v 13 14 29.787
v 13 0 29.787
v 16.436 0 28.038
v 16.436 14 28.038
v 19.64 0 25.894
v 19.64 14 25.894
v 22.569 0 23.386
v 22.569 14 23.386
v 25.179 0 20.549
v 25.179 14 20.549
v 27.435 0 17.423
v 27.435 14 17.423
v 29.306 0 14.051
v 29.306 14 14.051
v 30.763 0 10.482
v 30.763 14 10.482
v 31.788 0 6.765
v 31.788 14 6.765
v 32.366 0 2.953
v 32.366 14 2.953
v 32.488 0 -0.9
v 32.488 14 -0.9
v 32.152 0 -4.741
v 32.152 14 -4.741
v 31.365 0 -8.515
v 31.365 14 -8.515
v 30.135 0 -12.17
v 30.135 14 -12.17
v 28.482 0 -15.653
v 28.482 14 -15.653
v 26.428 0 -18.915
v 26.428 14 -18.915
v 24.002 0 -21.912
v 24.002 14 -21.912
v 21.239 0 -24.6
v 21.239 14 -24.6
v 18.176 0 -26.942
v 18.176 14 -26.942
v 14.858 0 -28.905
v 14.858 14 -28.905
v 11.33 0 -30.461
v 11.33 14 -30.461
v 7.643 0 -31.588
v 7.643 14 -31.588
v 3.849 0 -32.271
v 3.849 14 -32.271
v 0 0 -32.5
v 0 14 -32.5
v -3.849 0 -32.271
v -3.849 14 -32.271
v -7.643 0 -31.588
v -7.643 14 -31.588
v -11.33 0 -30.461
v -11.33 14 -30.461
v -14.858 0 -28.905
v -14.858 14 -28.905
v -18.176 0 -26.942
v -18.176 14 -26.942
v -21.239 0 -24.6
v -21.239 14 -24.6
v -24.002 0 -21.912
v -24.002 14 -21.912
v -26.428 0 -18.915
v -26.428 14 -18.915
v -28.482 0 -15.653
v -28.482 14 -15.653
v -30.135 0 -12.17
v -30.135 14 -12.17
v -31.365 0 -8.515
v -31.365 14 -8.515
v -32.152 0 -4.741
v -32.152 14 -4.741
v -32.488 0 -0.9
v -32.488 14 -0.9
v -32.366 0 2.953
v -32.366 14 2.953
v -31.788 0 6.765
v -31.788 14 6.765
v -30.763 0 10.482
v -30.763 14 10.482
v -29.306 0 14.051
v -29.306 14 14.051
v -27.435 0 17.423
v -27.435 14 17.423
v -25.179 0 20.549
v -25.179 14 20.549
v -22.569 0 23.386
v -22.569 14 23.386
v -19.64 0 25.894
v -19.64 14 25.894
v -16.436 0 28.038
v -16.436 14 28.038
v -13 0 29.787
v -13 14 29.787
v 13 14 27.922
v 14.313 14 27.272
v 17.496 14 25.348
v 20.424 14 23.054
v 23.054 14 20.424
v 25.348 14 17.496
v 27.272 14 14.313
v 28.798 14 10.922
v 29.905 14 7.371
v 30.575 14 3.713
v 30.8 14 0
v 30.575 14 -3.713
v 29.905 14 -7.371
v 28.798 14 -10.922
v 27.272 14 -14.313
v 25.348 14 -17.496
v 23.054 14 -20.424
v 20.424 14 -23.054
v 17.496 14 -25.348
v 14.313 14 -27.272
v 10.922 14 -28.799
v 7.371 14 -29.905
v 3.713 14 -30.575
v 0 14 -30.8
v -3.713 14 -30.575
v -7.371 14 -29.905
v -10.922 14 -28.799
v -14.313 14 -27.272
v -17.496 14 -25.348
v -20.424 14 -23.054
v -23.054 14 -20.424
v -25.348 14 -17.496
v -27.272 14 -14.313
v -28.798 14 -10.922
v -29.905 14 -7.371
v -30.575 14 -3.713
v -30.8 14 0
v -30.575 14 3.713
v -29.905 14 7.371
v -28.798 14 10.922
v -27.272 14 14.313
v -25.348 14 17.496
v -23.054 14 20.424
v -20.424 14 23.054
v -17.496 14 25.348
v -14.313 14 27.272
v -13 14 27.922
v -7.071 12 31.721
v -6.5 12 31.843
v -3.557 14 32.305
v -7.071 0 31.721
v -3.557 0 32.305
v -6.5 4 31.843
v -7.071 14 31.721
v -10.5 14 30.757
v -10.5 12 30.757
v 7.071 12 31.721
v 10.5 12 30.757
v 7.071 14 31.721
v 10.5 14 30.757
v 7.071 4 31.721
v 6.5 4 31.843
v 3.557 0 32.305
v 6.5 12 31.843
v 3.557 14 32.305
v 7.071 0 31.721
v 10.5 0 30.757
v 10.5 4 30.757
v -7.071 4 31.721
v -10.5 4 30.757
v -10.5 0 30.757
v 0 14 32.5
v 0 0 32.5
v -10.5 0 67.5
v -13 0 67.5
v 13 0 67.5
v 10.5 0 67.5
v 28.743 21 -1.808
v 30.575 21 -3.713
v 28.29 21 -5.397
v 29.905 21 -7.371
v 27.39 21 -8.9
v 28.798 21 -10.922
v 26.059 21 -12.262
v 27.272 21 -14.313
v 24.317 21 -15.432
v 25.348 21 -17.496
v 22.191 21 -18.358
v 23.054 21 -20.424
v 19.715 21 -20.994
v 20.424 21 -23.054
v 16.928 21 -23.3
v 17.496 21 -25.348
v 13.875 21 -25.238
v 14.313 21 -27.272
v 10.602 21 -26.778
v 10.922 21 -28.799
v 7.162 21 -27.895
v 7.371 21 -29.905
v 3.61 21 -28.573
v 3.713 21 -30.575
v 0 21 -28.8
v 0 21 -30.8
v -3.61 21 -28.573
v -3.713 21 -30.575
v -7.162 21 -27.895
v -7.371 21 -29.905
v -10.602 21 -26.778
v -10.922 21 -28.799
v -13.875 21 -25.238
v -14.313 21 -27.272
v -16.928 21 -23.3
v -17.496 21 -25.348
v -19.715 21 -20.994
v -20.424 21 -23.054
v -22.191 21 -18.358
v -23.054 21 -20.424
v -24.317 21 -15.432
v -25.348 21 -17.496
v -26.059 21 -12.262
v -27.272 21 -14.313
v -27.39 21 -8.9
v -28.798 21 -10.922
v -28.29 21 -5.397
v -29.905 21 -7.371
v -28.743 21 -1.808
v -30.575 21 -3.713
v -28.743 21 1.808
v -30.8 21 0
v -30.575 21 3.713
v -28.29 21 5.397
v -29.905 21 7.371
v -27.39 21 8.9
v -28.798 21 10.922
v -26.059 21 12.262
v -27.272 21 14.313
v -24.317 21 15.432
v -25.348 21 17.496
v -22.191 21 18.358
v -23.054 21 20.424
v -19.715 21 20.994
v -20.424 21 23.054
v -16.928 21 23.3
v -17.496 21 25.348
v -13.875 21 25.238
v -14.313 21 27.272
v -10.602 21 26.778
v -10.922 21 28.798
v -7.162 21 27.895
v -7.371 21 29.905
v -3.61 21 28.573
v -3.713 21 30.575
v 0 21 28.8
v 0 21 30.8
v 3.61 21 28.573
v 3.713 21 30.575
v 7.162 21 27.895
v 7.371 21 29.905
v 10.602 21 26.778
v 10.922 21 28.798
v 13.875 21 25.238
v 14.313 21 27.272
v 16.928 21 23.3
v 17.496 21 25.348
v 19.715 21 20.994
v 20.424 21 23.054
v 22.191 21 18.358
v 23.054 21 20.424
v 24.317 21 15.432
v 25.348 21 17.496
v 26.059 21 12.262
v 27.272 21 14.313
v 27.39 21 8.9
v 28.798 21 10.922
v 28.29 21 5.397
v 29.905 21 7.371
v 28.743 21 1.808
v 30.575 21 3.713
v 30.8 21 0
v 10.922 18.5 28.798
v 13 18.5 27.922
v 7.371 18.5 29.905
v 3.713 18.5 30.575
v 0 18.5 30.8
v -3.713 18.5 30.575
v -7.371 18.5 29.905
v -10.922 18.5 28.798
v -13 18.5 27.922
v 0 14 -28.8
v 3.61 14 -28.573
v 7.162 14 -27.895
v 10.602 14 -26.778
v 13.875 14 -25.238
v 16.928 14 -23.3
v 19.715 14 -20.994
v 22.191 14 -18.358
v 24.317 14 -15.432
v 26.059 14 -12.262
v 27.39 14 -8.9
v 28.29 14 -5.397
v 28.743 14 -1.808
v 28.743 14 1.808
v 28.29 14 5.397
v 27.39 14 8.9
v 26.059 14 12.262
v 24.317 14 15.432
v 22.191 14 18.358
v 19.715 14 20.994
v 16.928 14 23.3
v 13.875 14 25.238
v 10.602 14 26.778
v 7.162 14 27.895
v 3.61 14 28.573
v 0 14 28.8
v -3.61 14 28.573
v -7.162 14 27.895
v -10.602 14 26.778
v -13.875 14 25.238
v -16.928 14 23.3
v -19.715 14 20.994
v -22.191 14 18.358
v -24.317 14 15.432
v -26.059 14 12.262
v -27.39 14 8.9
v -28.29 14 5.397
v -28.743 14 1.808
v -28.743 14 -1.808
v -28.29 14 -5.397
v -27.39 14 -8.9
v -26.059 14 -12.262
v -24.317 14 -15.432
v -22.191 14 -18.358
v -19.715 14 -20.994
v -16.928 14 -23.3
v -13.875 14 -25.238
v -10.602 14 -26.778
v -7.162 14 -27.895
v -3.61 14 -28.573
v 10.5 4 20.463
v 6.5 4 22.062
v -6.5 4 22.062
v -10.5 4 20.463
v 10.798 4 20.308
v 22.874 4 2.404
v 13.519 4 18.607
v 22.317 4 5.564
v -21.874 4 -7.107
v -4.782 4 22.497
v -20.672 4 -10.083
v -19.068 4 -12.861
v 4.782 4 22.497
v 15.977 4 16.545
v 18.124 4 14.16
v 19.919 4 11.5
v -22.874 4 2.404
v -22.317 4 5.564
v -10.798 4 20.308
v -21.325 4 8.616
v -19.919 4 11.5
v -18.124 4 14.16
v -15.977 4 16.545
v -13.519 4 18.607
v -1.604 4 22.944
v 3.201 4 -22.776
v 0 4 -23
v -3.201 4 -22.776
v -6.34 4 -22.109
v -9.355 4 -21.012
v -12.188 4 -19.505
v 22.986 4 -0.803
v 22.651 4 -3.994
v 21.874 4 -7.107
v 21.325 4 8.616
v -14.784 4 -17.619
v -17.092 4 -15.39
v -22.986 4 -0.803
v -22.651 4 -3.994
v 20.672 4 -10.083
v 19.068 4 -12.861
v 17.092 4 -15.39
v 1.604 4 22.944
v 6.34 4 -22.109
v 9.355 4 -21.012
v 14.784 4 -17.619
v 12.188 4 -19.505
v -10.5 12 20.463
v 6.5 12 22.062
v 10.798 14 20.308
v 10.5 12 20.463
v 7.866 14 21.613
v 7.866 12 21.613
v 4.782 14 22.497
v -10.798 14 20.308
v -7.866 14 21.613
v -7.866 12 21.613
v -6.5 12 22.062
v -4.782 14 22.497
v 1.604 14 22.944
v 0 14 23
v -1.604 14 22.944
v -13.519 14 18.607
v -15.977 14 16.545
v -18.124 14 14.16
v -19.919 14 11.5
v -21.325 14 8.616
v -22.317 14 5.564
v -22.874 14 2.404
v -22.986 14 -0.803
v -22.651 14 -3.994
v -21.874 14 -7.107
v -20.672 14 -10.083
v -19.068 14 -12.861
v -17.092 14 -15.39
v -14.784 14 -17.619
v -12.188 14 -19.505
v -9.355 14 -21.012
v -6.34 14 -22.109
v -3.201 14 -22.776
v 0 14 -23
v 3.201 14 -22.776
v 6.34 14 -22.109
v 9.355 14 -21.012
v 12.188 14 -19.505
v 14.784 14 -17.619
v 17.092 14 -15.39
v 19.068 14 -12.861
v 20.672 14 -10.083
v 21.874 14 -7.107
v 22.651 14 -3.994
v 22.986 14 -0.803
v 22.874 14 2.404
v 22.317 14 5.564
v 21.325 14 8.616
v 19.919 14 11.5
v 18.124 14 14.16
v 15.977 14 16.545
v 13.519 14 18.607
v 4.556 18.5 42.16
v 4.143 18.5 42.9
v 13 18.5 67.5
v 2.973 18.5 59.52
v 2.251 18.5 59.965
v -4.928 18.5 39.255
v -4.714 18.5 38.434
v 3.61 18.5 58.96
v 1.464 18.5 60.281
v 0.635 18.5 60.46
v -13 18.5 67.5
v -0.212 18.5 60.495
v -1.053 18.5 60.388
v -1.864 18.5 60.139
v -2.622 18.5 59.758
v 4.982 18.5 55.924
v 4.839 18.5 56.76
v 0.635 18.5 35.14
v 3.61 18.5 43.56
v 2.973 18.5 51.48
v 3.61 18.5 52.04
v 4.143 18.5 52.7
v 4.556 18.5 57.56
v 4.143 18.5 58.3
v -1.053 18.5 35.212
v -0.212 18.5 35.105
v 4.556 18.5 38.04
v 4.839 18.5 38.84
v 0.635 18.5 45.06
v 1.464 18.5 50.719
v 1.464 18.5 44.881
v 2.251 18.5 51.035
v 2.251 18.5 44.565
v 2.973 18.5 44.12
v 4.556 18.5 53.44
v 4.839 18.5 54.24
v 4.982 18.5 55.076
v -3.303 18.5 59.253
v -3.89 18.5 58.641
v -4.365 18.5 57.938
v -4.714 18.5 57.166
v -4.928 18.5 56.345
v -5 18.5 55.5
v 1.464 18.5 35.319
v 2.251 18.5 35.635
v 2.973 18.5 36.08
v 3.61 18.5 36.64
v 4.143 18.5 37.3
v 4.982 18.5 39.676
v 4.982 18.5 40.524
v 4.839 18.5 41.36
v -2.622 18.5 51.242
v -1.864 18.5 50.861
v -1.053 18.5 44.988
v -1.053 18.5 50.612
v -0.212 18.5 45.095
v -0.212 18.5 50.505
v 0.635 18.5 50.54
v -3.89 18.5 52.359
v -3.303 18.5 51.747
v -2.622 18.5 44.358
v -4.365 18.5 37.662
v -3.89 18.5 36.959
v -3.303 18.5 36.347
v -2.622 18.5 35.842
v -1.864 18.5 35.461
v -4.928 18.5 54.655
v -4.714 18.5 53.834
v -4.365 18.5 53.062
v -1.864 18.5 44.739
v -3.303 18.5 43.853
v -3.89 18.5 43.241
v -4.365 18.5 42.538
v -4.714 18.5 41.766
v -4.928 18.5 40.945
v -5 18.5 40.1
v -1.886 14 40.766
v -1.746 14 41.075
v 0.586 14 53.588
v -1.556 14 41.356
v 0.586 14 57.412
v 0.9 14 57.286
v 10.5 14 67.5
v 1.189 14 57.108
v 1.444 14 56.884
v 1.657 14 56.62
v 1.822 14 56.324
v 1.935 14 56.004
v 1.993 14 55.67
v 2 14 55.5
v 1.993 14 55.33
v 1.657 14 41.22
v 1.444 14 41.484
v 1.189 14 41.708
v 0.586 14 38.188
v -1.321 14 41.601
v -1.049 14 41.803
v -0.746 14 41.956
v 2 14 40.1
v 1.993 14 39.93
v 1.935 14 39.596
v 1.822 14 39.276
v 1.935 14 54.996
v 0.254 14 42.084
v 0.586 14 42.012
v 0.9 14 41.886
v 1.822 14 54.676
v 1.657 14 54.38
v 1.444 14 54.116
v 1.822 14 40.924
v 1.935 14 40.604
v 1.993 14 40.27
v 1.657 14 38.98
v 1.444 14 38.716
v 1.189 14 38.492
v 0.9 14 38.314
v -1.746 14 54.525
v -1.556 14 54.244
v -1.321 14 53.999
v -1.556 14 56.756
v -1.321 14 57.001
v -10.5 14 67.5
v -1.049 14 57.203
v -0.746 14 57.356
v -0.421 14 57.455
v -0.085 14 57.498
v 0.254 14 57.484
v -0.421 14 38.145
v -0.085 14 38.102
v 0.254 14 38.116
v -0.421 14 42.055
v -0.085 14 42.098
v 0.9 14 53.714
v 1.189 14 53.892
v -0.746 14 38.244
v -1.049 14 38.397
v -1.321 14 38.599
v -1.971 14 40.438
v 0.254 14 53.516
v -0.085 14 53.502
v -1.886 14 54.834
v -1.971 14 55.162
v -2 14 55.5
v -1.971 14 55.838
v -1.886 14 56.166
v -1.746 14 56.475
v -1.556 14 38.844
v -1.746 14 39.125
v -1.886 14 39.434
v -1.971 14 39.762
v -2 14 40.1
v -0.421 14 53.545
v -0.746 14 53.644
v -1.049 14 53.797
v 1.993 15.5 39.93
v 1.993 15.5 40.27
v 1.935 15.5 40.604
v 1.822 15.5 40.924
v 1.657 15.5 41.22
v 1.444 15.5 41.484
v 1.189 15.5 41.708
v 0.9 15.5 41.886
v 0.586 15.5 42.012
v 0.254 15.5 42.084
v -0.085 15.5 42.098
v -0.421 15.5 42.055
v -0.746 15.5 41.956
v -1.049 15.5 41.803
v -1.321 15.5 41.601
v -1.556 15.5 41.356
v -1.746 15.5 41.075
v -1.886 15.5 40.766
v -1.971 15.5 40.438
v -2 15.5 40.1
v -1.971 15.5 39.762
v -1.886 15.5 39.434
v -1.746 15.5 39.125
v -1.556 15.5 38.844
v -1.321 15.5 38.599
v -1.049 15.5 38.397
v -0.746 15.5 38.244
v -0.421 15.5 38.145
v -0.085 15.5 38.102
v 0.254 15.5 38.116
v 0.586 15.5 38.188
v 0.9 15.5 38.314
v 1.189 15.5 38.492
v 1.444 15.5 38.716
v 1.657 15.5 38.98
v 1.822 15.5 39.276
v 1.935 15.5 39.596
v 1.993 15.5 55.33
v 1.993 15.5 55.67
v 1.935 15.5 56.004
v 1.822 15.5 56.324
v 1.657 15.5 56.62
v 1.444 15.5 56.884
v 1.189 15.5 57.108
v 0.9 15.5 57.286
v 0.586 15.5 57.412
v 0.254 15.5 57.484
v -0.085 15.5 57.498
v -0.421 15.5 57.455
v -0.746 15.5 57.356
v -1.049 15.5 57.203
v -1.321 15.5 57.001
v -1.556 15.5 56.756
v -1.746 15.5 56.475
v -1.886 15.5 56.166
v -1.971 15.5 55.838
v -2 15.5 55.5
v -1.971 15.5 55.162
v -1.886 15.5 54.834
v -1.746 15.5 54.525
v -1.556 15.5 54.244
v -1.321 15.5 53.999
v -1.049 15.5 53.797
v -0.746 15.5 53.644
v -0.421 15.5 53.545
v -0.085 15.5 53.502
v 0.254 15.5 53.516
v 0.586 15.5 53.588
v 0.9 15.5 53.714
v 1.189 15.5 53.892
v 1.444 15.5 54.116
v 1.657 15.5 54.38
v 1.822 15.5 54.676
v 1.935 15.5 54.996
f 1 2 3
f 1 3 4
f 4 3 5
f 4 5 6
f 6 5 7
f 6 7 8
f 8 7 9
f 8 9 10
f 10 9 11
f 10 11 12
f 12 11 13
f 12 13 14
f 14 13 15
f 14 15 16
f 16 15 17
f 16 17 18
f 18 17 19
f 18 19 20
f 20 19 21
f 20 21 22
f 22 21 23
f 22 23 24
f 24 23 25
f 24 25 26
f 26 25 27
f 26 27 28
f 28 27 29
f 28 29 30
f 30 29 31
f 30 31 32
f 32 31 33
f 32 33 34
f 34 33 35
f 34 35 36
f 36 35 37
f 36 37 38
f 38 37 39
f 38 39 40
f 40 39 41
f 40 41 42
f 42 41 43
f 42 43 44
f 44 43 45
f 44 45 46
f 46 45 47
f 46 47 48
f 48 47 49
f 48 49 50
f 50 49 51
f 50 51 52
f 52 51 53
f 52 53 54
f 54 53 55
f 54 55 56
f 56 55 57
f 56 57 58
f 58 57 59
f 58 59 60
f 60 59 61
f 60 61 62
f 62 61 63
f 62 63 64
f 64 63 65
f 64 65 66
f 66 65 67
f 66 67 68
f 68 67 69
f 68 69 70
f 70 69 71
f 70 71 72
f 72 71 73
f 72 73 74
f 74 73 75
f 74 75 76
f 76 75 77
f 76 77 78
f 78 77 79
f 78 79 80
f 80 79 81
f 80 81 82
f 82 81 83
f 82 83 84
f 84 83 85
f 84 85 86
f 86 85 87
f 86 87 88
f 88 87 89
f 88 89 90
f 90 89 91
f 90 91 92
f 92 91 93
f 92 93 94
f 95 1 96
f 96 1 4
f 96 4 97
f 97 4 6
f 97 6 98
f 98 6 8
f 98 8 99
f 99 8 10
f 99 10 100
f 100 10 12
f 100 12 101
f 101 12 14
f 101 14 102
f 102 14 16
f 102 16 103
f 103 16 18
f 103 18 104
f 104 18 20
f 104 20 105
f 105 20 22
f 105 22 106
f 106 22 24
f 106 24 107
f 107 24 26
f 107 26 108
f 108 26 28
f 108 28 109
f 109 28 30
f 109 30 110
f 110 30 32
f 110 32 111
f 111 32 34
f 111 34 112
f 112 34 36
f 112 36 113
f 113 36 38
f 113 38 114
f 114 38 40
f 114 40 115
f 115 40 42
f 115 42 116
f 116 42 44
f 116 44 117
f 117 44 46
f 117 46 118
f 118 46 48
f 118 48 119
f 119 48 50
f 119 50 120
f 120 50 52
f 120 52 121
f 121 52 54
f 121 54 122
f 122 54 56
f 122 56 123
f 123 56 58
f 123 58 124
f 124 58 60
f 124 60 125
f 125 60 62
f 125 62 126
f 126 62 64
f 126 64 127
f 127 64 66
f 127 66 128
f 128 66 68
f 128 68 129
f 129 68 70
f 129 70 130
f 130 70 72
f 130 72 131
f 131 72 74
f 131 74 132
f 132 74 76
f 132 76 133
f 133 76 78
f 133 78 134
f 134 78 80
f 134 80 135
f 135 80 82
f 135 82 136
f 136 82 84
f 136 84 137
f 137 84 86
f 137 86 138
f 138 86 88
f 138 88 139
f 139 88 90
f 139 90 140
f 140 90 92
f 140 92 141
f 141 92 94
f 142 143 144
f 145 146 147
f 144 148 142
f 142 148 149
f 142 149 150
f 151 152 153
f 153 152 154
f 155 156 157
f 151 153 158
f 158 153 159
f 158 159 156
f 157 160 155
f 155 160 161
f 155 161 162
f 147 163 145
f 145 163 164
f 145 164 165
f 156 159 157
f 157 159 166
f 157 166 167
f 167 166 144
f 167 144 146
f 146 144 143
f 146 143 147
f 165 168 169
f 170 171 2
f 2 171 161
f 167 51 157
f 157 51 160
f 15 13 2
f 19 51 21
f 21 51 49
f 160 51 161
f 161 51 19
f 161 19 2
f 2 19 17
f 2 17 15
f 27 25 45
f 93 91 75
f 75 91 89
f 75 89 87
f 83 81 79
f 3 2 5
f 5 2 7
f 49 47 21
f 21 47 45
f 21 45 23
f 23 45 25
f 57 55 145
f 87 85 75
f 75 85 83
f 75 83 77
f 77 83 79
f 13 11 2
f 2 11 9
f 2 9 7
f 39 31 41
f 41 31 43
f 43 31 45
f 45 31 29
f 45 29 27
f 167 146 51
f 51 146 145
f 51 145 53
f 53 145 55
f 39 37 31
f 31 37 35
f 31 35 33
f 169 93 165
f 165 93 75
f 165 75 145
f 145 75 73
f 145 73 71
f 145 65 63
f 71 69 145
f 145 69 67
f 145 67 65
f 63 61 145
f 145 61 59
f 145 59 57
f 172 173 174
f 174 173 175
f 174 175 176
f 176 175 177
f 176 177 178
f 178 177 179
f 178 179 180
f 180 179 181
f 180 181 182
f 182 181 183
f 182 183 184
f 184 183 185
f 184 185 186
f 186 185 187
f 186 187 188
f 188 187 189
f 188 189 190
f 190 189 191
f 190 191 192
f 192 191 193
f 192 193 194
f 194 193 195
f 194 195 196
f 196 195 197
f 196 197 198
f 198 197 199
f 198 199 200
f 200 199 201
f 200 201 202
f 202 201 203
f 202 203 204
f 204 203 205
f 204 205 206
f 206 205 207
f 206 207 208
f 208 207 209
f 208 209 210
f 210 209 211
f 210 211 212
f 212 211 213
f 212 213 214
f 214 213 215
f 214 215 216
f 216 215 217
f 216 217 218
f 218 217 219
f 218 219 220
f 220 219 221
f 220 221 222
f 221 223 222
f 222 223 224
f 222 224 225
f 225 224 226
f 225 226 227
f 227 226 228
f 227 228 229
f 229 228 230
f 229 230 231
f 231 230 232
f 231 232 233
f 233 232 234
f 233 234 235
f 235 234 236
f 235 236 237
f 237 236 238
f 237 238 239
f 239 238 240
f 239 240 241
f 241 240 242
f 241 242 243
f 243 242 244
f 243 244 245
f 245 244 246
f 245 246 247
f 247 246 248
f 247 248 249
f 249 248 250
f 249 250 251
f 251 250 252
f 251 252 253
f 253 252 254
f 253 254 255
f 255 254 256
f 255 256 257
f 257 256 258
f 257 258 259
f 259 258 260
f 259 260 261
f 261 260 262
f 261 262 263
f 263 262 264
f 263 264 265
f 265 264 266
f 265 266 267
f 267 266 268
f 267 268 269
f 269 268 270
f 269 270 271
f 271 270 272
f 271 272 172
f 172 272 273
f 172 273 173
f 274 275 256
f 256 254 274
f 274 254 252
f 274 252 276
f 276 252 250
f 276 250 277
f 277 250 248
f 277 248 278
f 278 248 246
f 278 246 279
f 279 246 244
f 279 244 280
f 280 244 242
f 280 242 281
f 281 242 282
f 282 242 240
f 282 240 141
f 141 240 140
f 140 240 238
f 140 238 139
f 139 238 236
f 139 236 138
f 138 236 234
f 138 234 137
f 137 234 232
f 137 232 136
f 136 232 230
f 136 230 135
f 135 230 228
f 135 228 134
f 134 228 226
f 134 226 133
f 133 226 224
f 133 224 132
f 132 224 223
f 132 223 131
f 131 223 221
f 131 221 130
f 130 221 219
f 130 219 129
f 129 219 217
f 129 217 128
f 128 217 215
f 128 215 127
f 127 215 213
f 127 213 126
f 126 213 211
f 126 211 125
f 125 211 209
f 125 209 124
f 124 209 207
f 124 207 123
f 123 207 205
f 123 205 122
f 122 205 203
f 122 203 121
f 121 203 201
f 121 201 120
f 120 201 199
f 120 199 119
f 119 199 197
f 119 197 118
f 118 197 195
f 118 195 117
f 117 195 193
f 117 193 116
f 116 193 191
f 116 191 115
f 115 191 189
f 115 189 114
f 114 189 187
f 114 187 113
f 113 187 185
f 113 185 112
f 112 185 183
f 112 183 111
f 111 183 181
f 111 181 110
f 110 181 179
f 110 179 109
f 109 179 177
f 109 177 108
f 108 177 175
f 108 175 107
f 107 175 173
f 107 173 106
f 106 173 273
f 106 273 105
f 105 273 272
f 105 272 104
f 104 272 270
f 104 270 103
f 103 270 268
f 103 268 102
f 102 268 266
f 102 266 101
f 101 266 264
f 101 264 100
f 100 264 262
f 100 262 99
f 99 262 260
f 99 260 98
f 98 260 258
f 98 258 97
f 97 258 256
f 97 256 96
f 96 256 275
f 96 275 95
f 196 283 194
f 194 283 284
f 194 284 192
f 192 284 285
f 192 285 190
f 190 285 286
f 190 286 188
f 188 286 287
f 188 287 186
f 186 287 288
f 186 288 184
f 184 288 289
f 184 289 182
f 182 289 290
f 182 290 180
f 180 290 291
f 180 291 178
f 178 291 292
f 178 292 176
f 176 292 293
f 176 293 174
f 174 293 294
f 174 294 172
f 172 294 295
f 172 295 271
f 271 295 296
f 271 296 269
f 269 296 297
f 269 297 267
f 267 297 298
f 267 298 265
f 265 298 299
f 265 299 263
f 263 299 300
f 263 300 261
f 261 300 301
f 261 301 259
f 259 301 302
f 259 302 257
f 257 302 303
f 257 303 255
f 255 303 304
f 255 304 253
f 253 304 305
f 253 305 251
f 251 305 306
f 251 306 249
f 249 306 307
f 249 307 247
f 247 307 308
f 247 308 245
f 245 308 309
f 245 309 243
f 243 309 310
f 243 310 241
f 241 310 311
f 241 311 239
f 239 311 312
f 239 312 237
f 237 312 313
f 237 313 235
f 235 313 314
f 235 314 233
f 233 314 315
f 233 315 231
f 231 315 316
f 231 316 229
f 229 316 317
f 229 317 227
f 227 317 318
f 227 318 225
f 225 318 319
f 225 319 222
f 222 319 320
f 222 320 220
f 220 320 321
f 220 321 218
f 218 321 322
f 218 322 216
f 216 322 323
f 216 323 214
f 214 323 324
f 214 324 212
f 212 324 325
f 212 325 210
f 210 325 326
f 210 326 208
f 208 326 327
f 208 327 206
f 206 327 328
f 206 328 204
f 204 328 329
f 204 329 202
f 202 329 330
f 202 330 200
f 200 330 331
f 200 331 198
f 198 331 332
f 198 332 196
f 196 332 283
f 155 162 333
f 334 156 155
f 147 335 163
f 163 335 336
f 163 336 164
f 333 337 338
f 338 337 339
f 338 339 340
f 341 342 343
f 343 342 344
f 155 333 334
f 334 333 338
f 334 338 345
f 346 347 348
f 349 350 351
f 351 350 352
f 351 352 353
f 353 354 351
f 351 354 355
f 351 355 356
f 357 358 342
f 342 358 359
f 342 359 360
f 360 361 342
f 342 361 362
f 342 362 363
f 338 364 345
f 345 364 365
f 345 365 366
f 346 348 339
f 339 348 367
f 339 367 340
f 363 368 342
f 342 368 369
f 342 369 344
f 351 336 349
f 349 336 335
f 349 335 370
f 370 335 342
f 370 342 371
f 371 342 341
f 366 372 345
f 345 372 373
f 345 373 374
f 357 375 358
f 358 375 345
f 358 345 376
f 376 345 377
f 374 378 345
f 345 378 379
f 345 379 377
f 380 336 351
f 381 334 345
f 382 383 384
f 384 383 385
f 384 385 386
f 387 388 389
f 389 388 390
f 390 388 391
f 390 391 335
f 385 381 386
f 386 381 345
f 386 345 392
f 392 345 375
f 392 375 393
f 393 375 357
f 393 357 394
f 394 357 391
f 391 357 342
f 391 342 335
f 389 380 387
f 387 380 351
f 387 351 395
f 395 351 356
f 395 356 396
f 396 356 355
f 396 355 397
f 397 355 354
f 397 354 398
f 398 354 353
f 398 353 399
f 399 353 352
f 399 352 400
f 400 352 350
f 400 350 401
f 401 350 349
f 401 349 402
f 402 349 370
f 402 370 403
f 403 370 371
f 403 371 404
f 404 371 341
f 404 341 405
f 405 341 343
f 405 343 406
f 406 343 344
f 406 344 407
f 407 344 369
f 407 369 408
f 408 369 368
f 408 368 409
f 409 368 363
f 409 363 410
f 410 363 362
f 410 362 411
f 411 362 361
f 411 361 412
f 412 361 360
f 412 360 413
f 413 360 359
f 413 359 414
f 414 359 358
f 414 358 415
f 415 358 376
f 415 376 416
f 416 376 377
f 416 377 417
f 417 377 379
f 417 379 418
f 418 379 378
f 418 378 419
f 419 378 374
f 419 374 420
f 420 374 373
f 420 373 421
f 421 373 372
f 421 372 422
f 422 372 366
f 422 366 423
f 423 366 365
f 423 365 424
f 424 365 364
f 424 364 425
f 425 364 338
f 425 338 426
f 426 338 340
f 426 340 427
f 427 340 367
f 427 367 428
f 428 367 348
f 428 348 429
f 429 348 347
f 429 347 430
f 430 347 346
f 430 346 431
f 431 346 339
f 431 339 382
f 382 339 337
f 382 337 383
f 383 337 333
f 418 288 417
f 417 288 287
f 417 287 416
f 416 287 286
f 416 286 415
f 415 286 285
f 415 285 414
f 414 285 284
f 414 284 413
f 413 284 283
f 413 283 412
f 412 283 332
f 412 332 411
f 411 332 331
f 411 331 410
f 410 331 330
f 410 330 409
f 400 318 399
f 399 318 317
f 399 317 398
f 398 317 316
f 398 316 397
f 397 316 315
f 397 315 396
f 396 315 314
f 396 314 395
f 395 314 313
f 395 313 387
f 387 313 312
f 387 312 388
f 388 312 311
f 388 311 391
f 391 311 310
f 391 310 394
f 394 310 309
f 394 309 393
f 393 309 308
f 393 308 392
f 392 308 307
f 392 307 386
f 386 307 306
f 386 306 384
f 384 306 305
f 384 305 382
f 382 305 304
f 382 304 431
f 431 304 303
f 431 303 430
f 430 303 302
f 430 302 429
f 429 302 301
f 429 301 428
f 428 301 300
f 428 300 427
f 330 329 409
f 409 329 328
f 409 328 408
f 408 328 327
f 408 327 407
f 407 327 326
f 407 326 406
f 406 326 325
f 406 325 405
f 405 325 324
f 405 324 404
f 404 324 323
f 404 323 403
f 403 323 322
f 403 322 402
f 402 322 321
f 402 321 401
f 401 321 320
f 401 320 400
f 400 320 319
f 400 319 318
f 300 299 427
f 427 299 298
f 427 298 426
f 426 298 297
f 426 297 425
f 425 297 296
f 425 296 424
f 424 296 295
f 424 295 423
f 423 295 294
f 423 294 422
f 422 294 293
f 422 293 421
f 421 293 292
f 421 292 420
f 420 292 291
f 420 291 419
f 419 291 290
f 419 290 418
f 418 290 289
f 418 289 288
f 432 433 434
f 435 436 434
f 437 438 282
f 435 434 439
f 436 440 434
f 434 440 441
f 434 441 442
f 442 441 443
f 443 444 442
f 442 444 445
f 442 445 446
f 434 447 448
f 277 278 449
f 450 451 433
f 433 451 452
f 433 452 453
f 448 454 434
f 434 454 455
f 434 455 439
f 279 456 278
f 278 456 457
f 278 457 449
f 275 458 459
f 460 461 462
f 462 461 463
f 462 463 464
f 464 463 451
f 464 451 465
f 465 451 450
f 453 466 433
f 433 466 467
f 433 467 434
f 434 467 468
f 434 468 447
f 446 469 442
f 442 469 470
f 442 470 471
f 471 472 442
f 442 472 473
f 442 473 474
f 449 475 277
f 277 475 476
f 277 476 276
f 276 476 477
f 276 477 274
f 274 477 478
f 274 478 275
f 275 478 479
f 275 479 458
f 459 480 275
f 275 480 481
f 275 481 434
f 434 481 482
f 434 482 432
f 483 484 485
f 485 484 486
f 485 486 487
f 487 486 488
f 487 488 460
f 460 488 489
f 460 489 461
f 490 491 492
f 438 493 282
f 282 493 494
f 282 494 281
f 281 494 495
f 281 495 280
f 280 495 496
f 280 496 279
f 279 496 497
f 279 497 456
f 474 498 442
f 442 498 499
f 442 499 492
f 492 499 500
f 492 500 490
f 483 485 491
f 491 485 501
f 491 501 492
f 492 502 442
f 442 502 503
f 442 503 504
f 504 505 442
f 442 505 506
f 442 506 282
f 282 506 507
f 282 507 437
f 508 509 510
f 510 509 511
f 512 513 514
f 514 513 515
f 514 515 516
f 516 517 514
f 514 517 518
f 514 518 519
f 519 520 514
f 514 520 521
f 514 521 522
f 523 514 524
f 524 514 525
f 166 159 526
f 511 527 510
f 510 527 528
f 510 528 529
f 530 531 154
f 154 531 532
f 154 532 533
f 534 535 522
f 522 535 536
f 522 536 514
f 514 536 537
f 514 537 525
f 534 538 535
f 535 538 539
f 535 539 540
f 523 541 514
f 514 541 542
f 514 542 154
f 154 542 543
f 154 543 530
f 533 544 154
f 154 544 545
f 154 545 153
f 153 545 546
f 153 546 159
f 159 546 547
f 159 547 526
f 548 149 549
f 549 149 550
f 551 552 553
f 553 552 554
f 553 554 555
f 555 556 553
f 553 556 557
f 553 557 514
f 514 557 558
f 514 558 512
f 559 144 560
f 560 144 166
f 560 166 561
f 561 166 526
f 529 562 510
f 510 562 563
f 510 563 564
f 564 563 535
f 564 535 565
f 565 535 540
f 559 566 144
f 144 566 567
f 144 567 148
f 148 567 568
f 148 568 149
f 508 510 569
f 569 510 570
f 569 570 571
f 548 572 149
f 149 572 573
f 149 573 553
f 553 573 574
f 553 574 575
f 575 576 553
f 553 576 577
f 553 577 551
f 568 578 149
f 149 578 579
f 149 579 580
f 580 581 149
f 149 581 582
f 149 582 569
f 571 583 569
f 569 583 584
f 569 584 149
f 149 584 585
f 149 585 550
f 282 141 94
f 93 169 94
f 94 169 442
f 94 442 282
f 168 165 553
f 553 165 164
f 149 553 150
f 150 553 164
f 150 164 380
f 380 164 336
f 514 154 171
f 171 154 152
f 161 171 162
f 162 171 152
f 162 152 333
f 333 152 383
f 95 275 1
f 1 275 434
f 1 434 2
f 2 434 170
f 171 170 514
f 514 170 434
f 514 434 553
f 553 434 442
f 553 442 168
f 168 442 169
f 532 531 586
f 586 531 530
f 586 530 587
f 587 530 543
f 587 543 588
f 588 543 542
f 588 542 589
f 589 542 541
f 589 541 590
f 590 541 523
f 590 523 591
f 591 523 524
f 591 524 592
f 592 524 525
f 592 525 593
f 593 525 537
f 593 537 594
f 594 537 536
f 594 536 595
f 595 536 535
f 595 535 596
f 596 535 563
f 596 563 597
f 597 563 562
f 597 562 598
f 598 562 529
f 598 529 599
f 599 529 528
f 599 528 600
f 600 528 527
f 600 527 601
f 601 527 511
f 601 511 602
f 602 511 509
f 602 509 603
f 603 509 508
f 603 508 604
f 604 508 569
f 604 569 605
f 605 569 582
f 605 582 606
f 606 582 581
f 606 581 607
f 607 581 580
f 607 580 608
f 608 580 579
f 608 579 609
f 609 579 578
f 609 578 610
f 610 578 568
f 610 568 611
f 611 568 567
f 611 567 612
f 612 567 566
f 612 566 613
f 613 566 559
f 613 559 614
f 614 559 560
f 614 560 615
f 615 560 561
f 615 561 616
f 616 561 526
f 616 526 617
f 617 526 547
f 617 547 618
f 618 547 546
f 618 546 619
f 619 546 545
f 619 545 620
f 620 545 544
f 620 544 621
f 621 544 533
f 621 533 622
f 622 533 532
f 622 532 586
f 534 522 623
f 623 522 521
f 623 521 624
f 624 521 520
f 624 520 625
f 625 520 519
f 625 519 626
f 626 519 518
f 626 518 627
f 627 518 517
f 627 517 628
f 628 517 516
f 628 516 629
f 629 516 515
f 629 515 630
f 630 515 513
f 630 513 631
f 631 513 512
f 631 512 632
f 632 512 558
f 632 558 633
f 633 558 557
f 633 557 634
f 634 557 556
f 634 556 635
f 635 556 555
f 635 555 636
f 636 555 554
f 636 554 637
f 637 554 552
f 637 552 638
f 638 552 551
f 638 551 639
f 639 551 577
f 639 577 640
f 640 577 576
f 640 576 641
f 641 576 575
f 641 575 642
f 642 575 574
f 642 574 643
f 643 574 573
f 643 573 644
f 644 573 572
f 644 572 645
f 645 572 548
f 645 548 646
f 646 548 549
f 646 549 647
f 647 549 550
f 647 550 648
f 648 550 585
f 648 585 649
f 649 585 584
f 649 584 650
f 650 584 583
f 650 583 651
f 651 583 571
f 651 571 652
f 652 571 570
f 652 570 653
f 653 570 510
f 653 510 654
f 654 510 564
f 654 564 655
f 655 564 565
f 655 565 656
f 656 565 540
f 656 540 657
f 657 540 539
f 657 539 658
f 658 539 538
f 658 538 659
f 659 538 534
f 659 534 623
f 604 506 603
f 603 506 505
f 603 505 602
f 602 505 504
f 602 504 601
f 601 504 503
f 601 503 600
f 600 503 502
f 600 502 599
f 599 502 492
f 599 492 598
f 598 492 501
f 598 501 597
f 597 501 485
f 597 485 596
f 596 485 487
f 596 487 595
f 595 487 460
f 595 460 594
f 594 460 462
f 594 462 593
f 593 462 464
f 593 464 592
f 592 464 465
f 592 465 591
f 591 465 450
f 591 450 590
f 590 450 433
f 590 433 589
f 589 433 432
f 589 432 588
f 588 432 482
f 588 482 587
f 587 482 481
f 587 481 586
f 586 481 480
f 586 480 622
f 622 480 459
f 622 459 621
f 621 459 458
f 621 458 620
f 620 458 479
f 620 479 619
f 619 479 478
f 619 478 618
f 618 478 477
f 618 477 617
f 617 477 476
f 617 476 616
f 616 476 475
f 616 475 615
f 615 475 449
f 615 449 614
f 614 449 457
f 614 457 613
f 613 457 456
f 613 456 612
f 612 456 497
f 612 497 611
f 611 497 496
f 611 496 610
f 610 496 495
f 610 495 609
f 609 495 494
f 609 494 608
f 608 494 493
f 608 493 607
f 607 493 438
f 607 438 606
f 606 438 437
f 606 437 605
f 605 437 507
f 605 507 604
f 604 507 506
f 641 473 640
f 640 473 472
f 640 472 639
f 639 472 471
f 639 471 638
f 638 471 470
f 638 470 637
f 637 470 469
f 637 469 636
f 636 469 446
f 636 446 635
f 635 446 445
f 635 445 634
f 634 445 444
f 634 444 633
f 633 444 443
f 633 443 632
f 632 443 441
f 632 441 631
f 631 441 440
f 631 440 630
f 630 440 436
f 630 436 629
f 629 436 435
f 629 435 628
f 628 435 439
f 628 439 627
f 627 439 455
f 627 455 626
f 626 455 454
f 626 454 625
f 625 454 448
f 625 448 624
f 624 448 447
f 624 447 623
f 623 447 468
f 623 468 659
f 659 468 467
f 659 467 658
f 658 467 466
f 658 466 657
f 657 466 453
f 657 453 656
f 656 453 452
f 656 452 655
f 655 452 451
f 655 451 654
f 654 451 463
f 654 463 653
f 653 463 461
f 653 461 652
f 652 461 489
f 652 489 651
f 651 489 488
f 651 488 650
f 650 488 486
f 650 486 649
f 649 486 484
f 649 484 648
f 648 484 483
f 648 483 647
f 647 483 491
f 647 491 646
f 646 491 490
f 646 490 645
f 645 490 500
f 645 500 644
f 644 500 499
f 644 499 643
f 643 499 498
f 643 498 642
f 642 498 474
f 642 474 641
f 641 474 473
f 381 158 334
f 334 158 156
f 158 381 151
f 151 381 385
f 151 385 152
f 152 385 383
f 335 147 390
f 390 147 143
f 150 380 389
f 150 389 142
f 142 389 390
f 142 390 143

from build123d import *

# Parameters (mm, degrees)
ESQUISSE1_R                    = 32.5
BOSS_EXTRU_1_DEPTH             = 4
ESQUISSE2_R                    = 32.5
ESQUISSE2_R_2                  = 23
BOSS_EXTRU_2_DEPTH             = 10
ESQUISSE4_R                    = 30.8
ESQUISSE4_R_2                  = 28.8
BOSS_EXTRU_4_DEPTH             = 7
BOSS_EXTRU_5_DEPTH             = 35
BOSS_EXTRU_5_DIRECTION_2_REACH = 67
ESQUISSE6_R                    = 2
ENL_V_MAT_EXTRU_1_DEPTH        = 5
CHANFREIN1_SIZE                = 3
ENL_V_MAT_EXTRU_2_REACH        = 67
ESQUISSE8_W                    = 4
ESQUISSE8_H                    = 8


with BuildPart() as part:
    # Esquisse1 → Boss.-Extru.1 (new body)
    with BuildSketch(Plane(origin=(0, 0, 0), x_dir=(1, 0, 0), z_dir=(0, 1, 0))):
        Circle(ESQUISSE1_R)
    extrude(amount=BOSS_EXTRU_1_DEPTH)

    # Esquisse2 → Boss.-Extru.2 (add)
    with BuildSketch(Plane(origin=(0, 4, 0), x_dir=(1, 0, 0), z_dir=(0, 1, 0))):
        Circle(ESQUISSE2_R)
        Circle(ESQUISSE2_R_2, mode=Mode.SUBTRACT)
    extrude(amount=BOSS_EXTRU_2_DEPTH)

    # Esquisse4 → Boss.-Extru.4 (add)
    with BuildSketch(Plane(origin=(0, 14, 0), x_dir=(1, 0, 0), z_dir=(0, 1, 0))):
        Circle(ESQUISSE4_R)
        Circle(ESQUISSE4_R_2, mode=Mode.SUBTRACT)
    extrude(amount=BOSS_EXTRU_4_DEPTH)

    # Esquisse5 → Boss.-Extru.5 (add)
    with BuildSketch(Plane.XY.offset(32.5)):
        Polygon((13, 18.5), (-13, 18.5), (-13, 0), (-10.5, 0), (-10.5, 14), (10.5, 14), (10.5, 0), (13, 0), align=None)
    extrude(amount=BOSS_EXTRU_5_DEPTH)

    # Esquisse5 → Boss.-Extru.5 direction 2 (add, up to next)
    with BuildSketch(Plane.XY.offset(32.5), mode=Mode.PRIVATE) as boss_extru_5_direction_2_sk1:
        Polygon((13, 18.5), (-13, 18.5), (-13, 0), (-10.5, 0), (-10.5, 14), (10.5, 14), (10.5, 0), (13, 0), align=None)
    boss_extru_5_direction_2_tool1 = extrude(boss_extru_5_direction_2_sk1.sketch, amount=-BOSS_EXTRU_5_DIRECTION_2_REACH, mode=Mode.PRIVATE) - part.part
    add(boss_extru_5_direction_2_tool1.solids().sort_by_distance((0, 18.1809, 32.5))[0])

    # Esquisse6 → Enlèv. mat.-Extru.1 (cut)
    with BuildSketch(Plane(origin=(0, 18.5, 0), x_dir=(1, 0, 0), z_dir=(0, 1, 0))):
        with Locations((0, -55.5)):
            Circle(ESQUISSE6_R)
        with Locations((0, -40.1)):
            Circle(ESQUISSE6_R)
    extrude(amount=-ENL_V_MAT_EXTRU_1_DEPTH, mode=Mode.SUBTRACT)

    # Chanfrein1
    chanfrein1_edges = [part.edges().sort_by_distance(p)[0] for p in [
        (-2, 18.5, 55.5),
        (-2, 18.5, 40.1),
    ]]
    chamfer(chanfrein1_edges, length=CHANFREIN1_SIZE)

    # Esquisse8 → Enlèv. mat.-Extru.2 (cut, up to next)
    with BuildSketch(Plane.XY.offset(32.5), mode=Mode.PRIVATE) as enl_v_mat_extru_2_sk1:
        with Locations((-8.5, 8)):
            Rectangle(ESQUISSE8_W, ESQUISSE8_H)
    enl_v_mat_extru_2_tool1 = extrude(enl_v_mat_extru_2_sk1.sketch, amount=-ENL_V_MAT_EXTRU_2_REACH, mode=Mode.PRIVATE) & part.part
    add(enl_v_mat_extru_2_tool1.solids().sort_by_distance((-8.5, 8, 32.5))[0], mode=Mode.SUBTRACT)
    # Esquisse8 → Enlèv. mat.-Extru.2 (cut, up to next)
    with BuildSketch(Plane.XY.offset(32.5), mode=Mode.PRIVATE) as enl_v_mat_extru_2_sk2:
        with Locations((8.5, 8)):
            Rectangle(ESQUISSE8_W, ESQUISSE8_H)
    enl_v_mat_extru_2_tool2 = extrude(enl_v_mat_extru_2_sk2.sketch, amount=-ENL_V_MAT_EXTRU_2_REACH, mode=Mode.PRIVATE) & part.part
    add(enl_v_mat_extru_2_tool2.solids().sort_by_distance((8.5, 8, 32.5))[0], mode=Mode.SUBTRACT)


solid = part.part
